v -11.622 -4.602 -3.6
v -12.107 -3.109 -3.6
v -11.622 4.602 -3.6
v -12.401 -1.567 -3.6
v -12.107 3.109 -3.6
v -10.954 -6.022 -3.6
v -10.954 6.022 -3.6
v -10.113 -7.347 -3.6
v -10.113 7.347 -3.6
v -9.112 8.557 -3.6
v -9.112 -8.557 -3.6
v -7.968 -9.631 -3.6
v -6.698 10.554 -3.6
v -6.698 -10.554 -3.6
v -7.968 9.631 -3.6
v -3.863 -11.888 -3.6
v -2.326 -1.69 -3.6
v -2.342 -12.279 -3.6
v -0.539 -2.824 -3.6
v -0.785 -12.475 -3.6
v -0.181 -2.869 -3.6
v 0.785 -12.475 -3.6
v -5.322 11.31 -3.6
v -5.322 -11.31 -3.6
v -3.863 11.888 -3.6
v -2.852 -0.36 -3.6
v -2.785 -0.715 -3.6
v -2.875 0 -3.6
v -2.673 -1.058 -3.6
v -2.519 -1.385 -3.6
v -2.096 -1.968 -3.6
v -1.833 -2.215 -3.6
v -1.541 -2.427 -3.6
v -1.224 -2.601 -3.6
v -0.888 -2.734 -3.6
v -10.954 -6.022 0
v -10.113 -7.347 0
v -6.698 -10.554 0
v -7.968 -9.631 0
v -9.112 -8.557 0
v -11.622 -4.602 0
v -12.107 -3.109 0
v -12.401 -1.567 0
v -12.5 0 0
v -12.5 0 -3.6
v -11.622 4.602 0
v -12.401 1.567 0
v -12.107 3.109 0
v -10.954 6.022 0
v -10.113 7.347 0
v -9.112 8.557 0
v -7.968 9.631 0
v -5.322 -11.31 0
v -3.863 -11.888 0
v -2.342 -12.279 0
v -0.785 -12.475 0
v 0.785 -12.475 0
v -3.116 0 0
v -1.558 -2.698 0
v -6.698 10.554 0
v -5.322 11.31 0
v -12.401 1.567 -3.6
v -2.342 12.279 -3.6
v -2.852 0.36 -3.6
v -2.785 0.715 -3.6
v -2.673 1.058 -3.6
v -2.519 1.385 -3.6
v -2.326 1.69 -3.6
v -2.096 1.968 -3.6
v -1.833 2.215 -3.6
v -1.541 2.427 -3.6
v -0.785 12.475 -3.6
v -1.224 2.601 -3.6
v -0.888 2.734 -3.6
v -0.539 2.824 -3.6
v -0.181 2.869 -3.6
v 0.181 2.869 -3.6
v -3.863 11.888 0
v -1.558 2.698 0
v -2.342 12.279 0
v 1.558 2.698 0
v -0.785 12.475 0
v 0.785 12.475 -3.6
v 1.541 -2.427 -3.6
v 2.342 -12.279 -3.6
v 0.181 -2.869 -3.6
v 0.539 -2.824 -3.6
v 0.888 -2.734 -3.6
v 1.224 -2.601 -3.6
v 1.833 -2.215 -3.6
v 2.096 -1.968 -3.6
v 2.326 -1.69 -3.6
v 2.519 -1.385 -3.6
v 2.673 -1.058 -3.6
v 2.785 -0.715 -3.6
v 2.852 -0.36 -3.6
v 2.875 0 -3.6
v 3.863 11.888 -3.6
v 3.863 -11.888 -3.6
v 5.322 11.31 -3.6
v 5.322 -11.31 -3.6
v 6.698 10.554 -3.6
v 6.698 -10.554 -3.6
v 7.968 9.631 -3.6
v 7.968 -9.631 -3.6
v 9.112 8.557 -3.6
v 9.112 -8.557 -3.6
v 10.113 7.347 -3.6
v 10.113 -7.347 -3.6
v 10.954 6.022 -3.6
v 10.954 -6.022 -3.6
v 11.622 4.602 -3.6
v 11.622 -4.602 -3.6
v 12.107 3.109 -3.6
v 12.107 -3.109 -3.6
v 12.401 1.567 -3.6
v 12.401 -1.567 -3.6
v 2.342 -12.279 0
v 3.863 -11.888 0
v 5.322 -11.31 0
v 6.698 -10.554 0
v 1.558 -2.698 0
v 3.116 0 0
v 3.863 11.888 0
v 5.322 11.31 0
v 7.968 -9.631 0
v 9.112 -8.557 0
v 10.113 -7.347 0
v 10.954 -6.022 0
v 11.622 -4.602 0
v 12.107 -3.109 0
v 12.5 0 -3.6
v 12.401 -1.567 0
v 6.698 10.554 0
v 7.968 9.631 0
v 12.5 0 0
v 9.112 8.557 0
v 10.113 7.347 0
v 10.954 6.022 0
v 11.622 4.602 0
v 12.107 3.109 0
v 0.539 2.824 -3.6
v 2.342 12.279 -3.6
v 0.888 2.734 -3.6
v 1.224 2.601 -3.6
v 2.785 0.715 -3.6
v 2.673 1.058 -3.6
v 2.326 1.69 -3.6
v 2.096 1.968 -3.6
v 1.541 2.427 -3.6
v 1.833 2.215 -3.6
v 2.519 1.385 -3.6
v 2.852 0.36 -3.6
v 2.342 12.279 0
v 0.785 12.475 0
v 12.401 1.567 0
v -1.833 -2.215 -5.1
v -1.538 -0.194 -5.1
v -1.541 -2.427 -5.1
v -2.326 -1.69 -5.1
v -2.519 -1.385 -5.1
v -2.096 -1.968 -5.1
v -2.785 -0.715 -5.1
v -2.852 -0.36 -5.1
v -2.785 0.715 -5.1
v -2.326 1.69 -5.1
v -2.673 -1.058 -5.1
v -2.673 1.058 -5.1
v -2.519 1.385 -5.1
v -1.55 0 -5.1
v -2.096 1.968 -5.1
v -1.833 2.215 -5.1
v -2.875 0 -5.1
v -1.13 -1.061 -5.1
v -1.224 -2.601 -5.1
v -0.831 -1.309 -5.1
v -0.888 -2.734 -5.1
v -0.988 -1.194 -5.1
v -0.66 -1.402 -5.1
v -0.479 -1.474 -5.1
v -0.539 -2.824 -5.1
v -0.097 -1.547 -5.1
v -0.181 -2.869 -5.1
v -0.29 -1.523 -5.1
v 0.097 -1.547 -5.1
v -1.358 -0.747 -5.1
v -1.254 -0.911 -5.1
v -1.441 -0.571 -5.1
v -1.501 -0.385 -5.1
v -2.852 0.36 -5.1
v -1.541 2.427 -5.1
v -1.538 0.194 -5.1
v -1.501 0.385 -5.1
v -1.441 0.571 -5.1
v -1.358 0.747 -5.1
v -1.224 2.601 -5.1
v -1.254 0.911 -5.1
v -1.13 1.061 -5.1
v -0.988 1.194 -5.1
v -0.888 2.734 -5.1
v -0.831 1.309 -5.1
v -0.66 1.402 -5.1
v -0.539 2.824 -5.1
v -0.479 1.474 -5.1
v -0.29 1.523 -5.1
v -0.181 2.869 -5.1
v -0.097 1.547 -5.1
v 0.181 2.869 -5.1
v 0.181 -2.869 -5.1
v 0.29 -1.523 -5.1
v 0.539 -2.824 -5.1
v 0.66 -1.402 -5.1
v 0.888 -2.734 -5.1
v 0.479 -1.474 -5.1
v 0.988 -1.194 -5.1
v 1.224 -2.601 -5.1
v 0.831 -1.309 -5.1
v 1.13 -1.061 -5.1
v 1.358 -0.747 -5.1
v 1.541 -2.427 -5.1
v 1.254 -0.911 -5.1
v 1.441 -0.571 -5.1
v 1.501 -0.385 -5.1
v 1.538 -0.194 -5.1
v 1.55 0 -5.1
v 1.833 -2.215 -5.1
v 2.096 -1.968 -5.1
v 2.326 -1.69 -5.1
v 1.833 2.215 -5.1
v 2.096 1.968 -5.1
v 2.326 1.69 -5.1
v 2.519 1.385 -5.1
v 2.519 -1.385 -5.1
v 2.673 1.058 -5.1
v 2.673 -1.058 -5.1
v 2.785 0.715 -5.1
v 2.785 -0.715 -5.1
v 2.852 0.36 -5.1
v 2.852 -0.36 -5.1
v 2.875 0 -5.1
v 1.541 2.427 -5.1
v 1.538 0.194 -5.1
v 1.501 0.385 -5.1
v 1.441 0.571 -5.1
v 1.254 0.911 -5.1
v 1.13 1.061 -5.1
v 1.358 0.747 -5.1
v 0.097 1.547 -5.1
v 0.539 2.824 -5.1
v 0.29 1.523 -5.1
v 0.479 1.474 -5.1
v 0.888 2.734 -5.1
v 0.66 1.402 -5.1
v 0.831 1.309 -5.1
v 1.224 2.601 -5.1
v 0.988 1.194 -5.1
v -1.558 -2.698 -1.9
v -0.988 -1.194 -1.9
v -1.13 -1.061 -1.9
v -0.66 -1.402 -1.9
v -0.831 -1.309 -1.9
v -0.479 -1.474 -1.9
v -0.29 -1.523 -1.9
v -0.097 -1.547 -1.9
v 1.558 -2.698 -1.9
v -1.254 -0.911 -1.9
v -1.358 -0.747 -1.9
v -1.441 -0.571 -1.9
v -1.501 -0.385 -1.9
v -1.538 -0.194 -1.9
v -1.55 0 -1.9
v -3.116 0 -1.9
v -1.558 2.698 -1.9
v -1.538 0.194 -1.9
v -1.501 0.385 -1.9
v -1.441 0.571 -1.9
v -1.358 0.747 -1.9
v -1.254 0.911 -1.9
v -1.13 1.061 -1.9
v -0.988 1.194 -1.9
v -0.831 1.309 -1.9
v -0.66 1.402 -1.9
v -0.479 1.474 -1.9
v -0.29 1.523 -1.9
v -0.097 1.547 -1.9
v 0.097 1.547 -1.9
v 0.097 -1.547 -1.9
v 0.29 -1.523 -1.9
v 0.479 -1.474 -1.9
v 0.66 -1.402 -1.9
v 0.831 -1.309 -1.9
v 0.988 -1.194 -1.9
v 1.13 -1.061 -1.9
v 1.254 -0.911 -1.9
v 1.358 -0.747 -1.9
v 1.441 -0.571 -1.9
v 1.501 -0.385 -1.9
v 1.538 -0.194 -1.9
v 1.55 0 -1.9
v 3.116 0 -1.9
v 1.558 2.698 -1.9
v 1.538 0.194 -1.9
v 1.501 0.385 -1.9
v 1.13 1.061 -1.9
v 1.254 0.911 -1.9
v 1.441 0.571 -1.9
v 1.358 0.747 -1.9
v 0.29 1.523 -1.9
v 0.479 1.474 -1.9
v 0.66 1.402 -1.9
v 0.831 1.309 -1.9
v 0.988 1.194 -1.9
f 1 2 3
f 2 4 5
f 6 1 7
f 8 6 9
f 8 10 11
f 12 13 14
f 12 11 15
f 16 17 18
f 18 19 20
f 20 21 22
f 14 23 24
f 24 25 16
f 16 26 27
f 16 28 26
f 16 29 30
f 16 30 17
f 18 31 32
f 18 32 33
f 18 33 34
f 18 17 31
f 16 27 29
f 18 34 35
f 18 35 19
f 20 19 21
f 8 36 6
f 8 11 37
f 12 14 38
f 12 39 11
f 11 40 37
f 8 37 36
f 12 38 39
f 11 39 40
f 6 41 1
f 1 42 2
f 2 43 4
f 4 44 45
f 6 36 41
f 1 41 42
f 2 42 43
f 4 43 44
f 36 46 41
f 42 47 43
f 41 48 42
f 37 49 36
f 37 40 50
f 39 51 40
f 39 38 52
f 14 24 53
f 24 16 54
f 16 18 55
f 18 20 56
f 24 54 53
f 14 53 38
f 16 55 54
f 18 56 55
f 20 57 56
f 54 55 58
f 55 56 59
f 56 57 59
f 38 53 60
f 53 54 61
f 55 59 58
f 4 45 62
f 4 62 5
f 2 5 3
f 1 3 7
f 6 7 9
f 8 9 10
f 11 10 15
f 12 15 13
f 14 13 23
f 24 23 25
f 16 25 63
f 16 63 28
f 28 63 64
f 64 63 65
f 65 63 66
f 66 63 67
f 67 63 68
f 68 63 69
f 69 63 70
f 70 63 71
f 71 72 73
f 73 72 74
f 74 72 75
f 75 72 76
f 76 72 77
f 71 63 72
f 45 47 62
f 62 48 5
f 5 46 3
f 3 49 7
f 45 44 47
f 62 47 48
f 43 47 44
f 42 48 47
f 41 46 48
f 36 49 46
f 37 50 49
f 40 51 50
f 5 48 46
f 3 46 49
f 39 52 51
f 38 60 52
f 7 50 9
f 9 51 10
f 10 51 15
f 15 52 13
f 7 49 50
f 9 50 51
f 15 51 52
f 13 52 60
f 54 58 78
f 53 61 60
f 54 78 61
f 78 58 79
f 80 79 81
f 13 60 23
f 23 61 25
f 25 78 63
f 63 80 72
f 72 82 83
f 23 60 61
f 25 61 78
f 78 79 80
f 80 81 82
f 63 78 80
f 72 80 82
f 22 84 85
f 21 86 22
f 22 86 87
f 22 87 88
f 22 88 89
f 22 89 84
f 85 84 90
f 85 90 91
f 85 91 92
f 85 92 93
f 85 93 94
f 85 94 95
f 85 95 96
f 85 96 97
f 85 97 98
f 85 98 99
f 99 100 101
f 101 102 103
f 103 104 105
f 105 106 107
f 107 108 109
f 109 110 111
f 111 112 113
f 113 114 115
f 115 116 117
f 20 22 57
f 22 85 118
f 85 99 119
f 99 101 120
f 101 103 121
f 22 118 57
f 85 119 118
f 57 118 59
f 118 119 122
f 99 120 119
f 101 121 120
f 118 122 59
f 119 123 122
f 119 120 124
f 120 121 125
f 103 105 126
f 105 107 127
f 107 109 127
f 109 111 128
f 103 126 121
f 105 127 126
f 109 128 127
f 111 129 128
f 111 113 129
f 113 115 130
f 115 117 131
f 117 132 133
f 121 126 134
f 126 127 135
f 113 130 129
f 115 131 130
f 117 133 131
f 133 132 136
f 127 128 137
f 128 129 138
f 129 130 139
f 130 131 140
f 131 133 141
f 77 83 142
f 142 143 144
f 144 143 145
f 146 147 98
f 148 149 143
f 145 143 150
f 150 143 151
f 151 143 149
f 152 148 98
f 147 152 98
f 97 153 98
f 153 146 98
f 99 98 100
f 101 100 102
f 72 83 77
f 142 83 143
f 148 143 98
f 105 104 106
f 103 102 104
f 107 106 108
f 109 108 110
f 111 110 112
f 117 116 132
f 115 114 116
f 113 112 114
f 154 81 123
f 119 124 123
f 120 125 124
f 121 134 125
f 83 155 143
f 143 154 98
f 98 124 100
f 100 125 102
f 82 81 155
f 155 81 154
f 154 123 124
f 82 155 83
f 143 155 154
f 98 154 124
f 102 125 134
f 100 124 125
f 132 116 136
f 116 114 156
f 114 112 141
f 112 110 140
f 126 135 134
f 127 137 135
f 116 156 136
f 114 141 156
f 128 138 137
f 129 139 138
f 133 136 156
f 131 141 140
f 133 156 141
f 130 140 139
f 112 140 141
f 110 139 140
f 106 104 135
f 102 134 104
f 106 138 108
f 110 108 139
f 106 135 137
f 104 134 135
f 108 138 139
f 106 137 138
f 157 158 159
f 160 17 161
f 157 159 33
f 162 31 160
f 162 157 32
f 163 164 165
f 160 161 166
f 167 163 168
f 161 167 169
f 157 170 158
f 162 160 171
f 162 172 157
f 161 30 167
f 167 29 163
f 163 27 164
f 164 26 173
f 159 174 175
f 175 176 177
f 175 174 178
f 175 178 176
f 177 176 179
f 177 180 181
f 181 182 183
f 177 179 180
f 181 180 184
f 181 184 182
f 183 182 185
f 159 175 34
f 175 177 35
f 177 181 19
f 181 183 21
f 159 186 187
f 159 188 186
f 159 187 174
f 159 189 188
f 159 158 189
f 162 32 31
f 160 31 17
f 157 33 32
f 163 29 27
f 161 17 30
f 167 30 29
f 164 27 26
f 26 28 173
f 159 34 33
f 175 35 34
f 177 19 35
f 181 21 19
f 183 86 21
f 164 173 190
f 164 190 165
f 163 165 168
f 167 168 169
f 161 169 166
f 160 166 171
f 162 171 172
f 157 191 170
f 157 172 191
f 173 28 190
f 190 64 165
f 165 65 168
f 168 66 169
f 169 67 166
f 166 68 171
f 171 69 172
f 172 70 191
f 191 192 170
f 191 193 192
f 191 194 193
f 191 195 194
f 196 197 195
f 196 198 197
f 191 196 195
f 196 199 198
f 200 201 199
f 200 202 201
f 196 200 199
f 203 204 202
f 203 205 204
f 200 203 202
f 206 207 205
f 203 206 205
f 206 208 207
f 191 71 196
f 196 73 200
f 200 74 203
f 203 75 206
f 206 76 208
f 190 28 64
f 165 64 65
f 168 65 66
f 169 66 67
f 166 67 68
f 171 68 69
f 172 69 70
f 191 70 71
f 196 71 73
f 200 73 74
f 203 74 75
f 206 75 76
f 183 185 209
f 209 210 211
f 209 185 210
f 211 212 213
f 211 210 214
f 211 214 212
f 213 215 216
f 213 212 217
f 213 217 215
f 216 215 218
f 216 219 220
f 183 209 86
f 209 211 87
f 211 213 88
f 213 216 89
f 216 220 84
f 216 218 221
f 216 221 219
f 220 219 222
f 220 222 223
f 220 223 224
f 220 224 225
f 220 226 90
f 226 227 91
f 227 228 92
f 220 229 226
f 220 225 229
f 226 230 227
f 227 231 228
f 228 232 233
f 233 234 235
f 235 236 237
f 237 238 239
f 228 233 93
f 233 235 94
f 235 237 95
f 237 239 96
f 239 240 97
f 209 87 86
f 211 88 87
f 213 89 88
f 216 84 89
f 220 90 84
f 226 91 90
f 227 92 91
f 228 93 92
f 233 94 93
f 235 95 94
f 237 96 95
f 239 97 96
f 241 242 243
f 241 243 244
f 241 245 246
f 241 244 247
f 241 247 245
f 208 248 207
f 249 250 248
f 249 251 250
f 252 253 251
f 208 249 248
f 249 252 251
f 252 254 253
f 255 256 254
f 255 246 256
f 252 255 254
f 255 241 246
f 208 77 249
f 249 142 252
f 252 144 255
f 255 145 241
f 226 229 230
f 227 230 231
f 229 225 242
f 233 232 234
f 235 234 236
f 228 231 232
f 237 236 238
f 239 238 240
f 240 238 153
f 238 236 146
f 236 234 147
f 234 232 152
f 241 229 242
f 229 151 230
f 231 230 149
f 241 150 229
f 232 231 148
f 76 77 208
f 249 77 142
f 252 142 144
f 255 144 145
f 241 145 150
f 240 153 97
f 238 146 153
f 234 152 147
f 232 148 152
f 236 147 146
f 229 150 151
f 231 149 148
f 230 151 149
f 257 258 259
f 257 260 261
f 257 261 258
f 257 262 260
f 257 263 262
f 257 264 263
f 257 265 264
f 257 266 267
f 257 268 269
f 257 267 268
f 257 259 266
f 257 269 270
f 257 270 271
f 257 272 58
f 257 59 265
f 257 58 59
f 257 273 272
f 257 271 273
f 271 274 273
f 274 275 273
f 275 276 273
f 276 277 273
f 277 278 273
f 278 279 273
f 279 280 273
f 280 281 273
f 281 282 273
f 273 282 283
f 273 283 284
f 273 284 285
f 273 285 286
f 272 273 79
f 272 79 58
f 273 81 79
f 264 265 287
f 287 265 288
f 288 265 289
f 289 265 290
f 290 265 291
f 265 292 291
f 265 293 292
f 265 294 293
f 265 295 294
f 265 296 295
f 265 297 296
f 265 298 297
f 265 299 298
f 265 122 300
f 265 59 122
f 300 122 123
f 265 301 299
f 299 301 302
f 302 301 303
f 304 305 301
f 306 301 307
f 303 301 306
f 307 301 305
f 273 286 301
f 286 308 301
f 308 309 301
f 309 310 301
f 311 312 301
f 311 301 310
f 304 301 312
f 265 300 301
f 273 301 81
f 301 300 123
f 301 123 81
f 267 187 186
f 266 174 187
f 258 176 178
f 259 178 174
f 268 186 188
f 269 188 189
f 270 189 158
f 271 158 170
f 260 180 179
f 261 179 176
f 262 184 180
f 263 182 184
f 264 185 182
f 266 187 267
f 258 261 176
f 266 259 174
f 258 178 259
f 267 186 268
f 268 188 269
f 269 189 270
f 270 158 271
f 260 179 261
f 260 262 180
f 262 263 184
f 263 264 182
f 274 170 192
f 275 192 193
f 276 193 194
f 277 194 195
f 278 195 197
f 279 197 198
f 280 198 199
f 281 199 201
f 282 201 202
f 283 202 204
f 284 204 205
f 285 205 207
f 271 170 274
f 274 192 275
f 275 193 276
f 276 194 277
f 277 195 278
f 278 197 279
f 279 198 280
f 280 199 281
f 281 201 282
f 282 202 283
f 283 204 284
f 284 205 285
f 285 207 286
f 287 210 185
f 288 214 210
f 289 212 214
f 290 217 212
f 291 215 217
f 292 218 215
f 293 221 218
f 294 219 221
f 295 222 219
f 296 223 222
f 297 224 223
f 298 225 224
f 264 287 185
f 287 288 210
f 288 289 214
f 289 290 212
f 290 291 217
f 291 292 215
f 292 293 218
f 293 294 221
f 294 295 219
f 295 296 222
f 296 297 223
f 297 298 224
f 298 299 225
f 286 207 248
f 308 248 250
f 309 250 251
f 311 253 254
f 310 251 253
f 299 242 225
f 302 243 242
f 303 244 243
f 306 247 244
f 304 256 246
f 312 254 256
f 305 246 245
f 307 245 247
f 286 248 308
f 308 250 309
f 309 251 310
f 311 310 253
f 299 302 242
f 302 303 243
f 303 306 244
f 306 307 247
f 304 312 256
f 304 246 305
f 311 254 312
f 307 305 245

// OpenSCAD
$fn = 50;

difference() {
	union() {
		translate(v = [0, 0, -3.6]) {
			cylinder(h = 3.6, r = 12.5);
		}
		#translate(v = [0, 0, -5.1]) {
			cylinder(h = 5.1, r = 2.875);
		}
	}
	union() {
		translate(v = [0, 0, 0]) {
			rotate(a = [0, 0, 0]) {
				difference() {
					union() {
						translate(v = [0, 0, -1.9]) {
							linear_extrude(height = 1.9) {
								polygon(points = [[3.1158, 0.0], [1.5579000000000005, 2.698361953111554], [-1.5578999999999994, 2.6983619531115544], [-3.1158, 3.815754496783323e-16], [-1.5579000000000014, -2.6983619531115535], [1.557899999999998, -2.6983619531115552]]);
							}
						}
					}
					union();
				}
			}
		}
		#translate(v = [0, 0, -100.0]) {
			cylinder(h = 200, r = 1.55);
		}
	}
}
